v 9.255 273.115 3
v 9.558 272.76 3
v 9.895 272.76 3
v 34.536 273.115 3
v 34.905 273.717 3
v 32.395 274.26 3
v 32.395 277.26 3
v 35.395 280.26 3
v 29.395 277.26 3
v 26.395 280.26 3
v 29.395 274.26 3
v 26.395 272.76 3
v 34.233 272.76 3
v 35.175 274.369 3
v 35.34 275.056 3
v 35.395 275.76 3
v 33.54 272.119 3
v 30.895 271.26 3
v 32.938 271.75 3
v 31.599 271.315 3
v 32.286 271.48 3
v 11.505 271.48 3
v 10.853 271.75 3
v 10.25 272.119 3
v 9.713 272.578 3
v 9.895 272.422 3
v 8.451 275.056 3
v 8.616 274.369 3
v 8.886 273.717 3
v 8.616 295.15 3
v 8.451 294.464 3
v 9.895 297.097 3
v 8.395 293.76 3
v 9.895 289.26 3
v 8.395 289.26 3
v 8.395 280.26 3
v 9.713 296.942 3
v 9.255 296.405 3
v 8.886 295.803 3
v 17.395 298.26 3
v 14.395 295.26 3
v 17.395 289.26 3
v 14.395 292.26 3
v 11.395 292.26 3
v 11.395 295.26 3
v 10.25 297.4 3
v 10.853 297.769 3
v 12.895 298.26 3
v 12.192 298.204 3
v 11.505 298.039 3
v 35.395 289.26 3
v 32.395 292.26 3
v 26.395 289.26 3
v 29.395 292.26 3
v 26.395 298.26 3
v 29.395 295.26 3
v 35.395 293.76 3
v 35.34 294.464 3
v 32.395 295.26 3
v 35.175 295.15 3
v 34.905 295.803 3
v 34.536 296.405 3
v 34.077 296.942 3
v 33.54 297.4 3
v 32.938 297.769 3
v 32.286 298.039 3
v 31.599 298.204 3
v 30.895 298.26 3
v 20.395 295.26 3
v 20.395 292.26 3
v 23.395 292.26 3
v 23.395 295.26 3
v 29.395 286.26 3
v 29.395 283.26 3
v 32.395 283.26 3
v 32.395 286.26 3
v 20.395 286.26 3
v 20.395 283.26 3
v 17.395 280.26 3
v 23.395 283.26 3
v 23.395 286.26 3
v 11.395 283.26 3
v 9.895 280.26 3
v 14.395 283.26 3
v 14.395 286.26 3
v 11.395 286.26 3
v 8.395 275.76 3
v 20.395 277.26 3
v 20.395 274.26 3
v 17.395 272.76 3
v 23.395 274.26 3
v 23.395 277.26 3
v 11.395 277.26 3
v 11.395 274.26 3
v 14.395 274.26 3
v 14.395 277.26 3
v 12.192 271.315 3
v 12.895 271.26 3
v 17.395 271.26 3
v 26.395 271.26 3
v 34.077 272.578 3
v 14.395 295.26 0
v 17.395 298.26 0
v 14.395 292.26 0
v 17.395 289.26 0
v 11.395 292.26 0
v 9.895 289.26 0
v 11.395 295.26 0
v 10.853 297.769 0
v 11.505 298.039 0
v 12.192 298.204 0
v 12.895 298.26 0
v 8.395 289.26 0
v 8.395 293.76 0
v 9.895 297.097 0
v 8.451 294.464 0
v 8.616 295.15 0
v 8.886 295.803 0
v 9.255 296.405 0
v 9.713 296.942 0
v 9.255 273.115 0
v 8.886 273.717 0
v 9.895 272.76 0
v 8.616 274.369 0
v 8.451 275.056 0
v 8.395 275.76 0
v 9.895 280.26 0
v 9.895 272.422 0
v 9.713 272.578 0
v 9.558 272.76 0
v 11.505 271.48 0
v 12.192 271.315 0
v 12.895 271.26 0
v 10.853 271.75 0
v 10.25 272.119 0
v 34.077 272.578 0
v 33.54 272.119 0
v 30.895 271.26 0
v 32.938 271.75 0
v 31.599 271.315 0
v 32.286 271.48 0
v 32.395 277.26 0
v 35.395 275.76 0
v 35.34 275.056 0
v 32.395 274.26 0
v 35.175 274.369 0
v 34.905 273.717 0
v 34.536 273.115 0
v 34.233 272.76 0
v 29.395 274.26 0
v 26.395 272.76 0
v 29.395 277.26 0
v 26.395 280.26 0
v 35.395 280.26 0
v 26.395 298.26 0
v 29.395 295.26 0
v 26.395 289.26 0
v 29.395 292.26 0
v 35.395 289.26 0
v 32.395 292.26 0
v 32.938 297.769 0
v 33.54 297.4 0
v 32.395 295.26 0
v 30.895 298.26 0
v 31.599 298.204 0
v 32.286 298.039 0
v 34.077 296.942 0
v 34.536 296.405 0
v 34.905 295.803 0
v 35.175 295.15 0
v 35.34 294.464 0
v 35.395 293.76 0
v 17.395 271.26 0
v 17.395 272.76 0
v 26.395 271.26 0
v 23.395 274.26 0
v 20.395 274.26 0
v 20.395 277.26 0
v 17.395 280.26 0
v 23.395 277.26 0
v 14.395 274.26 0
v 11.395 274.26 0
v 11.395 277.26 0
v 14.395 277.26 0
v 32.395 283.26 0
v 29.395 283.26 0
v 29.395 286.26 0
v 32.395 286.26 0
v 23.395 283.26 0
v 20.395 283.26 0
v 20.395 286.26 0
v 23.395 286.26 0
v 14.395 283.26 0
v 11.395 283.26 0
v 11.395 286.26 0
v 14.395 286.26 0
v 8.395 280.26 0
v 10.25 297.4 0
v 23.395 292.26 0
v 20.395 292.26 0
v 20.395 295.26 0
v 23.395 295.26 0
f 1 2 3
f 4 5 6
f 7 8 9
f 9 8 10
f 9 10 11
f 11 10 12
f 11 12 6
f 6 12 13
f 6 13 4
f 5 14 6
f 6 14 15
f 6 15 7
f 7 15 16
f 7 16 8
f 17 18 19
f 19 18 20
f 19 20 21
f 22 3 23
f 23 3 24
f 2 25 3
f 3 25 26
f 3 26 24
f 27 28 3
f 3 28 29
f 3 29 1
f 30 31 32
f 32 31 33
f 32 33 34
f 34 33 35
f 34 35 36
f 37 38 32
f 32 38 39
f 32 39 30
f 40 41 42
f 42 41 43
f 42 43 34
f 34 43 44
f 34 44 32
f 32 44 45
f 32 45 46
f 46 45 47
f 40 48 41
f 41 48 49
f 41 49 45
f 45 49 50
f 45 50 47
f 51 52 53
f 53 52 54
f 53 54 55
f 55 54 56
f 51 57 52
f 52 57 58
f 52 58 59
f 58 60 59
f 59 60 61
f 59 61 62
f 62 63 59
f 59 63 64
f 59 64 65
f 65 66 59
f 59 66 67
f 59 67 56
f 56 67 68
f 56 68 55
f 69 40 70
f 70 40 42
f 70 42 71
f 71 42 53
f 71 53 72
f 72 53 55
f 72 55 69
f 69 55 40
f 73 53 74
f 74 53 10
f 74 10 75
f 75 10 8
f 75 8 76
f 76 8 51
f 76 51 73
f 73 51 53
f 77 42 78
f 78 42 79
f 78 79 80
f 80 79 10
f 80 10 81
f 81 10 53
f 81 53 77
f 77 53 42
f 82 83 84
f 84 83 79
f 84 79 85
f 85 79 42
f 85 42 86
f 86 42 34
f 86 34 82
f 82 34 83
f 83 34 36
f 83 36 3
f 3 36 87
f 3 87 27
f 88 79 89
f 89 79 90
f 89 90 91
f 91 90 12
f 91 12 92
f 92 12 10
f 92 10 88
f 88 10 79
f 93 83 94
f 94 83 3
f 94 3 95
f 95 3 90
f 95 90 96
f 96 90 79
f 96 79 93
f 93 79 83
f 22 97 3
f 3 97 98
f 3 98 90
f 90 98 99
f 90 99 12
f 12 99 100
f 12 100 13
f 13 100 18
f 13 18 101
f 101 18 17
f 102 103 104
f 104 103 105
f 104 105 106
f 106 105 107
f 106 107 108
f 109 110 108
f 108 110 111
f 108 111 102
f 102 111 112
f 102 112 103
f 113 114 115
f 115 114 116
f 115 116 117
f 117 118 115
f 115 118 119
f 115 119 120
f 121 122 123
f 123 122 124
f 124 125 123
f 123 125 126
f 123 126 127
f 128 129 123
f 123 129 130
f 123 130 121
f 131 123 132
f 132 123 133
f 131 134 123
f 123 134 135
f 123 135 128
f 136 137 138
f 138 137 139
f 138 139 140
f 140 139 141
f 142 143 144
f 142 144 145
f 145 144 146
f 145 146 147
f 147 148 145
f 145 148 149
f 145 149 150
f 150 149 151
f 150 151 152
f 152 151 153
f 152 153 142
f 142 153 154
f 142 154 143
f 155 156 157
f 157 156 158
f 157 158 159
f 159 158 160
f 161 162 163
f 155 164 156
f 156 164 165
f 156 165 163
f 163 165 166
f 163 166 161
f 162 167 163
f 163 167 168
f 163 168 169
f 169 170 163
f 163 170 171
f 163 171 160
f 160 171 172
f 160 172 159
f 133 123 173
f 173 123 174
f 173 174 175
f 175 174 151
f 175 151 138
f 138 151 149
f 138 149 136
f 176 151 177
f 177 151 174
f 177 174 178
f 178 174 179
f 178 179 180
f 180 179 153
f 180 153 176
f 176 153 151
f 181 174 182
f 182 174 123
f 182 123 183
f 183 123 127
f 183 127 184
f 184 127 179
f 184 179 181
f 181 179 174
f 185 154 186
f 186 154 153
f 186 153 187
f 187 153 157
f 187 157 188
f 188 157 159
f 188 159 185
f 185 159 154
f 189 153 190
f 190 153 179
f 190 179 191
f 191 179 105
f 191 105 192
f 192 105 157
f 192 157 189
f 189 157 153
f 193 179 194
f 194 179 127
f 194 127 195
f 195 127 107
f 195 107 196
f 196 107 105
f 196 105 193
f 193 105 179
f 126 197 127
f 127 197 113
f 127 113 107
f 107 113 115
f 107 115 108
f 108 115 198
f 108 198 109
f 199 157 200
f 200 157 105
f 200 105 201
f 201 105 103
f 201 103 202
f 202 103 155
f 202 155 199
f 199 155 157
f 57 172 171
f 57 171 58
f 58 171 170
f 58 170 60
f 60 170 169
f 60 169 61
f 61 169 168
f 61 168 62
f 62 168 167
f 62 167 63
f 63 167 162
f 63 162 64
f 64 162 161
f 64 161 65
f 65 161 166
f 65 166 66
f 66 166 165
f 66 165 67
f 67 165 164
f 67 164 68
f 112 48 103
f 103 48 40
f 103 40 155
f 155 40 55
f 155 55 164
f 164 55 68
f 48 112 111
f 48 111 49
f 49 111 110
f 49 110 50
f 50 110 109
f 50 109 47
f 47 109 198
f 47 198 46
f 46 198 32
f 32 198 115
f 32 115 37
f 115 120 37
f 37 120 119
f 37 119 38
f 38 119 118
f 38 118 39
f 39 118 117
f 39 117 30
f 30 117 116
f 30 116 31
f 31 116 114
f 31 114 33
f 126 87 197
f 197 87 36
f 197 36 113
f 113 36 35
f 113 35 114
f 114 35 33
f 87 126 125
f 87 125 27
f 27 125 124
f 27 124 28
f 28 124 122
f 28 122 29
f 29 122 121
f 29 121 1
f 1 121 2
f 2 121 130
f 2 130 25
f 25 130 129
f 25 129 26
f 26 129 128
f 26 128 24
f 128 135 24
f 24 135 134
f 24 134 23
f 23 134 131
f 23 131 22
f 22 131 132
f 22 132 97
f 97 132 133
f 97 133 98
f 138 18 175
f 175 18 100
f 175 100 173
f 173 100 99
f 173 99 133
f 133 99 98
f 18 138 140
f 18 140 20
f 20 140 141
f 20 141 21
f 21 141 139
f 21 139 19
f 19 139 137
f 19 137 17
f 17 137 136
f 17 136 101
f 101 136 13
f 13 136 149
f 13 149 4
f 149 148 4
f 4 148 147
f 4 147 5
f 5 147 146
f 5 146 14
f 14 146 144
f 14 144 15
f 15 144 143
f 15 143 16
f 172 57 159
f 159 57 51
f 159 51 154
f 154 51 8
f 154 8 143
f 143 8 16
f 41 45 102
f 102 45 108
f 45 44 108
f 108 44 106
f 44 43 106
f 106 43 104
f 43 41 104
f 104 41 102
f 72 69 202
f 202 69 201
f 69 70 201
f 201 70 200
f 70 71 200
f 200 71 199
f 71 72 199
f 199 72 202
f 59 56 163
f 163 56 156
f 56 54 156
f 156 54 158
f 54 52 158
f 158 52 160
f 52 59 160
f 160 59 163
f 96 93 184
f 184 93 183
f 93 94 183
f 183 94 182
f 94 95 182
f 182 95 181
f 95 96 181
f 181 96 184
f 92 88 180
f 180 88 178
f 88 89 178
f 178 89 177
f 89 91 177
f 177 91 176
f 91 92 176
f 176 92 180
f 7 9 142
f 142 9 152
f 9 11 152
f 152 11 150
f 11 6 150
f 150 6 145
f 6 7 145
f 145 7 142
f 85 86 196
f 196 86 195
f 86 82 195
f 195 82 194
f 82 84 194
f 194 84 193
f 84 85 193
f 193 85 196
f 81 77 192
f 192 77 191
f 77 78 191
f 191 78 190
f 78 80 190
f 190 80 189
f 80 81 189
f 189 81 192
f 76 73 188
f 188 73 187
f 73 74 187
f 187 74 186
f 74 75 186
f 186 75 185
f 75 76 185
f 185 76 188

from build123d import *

# Parameters (mm, degrees)
MODEL_W                 = 3
MODEL_H                 = 3
SALIENTE_EXTRUIR1_DEPTH = 3


with BuildPart() as part:
    # Model → Saliente-Extruir1 (new body)
    with BuildSketch(Plane.XY):
        with BuildLine():
            Line((12.895467255, 298.259658236), (30.895467255, 298.259658236))
            ThreePointArc((30.895467255, 298.259658236), (34.077447771, 296.941638751), (35.395467255, 293.759658236))
            Line((35.395467255, 293.759658236), (35.395467255, 275.759658236))
            ThreePointArc((35.395467255, 275.759658236), (34.077447771, 272.577677721), (30.895467255, 271.259658236))
            Line((30.895467255, 271.259658236), (12.895467255, 271.259658236))
            ThreePointArc((12.895467255, 271.259658236), (9.71348674, 272.577677721), (8.395467255, 275.759658236))
            Line((8.395467255, 275.759658236), (8.395467255, 293.759658236))
            ThreePointArc((8.395467255, 293.759658236), (9.71348674, 296.941638751), (12.895467255, 298.259658236))
        make_face()
        with Locations((12.895467255, 293.759658236)):
            Rectangle(MODEL_W, MODEL_H, mode=Mode.SUBTRACT)
        with Locations((21.895467255, 293.759658236)):
            Rectangle(MODEL_W, MODEL_H, mode=Mode.SUBTRACT)
        with Locations((30.895467255, 293.759658236)):
            Rectangle(MODEL_W, MODEL_H, mode=Mode.SUBTRACT)
        with Locations((12.895467255, 275.759658236)):
            Rectangle(MODEL_W, MODEL_H, mode=Mode.SUBTRACT)
        with Locations((21.895467255, 275.759658236)):
            Rectangle(MODEL_W, MODEL_H, mode=Mode.SUBTRACT)
        with Locations((30.895467255, 275.759658236)):
            Rectangle(MODEL_W, MODEL_H, mode=Mode.SUBTRACT)
        with Locations((12.895467255, 284.759658236)):
            Rectangle(MODEL_W, MODEL_H, mode=Mode.SUBTRACT)
        with Locations((21.895467255, 284.759658236)):
            Rectangle(MODEL_W, MODEL_H, mode=Mode.SUBTRACT)
        with Locations((30.895467255, 284.759658236)):
            Rectangle(MODEL_W, MODEL_H, mode=Mode.SUBTRACT)
    extrude(amount=SALIENTE_EXTRUIR1_DEPTH)


solid = part.part
